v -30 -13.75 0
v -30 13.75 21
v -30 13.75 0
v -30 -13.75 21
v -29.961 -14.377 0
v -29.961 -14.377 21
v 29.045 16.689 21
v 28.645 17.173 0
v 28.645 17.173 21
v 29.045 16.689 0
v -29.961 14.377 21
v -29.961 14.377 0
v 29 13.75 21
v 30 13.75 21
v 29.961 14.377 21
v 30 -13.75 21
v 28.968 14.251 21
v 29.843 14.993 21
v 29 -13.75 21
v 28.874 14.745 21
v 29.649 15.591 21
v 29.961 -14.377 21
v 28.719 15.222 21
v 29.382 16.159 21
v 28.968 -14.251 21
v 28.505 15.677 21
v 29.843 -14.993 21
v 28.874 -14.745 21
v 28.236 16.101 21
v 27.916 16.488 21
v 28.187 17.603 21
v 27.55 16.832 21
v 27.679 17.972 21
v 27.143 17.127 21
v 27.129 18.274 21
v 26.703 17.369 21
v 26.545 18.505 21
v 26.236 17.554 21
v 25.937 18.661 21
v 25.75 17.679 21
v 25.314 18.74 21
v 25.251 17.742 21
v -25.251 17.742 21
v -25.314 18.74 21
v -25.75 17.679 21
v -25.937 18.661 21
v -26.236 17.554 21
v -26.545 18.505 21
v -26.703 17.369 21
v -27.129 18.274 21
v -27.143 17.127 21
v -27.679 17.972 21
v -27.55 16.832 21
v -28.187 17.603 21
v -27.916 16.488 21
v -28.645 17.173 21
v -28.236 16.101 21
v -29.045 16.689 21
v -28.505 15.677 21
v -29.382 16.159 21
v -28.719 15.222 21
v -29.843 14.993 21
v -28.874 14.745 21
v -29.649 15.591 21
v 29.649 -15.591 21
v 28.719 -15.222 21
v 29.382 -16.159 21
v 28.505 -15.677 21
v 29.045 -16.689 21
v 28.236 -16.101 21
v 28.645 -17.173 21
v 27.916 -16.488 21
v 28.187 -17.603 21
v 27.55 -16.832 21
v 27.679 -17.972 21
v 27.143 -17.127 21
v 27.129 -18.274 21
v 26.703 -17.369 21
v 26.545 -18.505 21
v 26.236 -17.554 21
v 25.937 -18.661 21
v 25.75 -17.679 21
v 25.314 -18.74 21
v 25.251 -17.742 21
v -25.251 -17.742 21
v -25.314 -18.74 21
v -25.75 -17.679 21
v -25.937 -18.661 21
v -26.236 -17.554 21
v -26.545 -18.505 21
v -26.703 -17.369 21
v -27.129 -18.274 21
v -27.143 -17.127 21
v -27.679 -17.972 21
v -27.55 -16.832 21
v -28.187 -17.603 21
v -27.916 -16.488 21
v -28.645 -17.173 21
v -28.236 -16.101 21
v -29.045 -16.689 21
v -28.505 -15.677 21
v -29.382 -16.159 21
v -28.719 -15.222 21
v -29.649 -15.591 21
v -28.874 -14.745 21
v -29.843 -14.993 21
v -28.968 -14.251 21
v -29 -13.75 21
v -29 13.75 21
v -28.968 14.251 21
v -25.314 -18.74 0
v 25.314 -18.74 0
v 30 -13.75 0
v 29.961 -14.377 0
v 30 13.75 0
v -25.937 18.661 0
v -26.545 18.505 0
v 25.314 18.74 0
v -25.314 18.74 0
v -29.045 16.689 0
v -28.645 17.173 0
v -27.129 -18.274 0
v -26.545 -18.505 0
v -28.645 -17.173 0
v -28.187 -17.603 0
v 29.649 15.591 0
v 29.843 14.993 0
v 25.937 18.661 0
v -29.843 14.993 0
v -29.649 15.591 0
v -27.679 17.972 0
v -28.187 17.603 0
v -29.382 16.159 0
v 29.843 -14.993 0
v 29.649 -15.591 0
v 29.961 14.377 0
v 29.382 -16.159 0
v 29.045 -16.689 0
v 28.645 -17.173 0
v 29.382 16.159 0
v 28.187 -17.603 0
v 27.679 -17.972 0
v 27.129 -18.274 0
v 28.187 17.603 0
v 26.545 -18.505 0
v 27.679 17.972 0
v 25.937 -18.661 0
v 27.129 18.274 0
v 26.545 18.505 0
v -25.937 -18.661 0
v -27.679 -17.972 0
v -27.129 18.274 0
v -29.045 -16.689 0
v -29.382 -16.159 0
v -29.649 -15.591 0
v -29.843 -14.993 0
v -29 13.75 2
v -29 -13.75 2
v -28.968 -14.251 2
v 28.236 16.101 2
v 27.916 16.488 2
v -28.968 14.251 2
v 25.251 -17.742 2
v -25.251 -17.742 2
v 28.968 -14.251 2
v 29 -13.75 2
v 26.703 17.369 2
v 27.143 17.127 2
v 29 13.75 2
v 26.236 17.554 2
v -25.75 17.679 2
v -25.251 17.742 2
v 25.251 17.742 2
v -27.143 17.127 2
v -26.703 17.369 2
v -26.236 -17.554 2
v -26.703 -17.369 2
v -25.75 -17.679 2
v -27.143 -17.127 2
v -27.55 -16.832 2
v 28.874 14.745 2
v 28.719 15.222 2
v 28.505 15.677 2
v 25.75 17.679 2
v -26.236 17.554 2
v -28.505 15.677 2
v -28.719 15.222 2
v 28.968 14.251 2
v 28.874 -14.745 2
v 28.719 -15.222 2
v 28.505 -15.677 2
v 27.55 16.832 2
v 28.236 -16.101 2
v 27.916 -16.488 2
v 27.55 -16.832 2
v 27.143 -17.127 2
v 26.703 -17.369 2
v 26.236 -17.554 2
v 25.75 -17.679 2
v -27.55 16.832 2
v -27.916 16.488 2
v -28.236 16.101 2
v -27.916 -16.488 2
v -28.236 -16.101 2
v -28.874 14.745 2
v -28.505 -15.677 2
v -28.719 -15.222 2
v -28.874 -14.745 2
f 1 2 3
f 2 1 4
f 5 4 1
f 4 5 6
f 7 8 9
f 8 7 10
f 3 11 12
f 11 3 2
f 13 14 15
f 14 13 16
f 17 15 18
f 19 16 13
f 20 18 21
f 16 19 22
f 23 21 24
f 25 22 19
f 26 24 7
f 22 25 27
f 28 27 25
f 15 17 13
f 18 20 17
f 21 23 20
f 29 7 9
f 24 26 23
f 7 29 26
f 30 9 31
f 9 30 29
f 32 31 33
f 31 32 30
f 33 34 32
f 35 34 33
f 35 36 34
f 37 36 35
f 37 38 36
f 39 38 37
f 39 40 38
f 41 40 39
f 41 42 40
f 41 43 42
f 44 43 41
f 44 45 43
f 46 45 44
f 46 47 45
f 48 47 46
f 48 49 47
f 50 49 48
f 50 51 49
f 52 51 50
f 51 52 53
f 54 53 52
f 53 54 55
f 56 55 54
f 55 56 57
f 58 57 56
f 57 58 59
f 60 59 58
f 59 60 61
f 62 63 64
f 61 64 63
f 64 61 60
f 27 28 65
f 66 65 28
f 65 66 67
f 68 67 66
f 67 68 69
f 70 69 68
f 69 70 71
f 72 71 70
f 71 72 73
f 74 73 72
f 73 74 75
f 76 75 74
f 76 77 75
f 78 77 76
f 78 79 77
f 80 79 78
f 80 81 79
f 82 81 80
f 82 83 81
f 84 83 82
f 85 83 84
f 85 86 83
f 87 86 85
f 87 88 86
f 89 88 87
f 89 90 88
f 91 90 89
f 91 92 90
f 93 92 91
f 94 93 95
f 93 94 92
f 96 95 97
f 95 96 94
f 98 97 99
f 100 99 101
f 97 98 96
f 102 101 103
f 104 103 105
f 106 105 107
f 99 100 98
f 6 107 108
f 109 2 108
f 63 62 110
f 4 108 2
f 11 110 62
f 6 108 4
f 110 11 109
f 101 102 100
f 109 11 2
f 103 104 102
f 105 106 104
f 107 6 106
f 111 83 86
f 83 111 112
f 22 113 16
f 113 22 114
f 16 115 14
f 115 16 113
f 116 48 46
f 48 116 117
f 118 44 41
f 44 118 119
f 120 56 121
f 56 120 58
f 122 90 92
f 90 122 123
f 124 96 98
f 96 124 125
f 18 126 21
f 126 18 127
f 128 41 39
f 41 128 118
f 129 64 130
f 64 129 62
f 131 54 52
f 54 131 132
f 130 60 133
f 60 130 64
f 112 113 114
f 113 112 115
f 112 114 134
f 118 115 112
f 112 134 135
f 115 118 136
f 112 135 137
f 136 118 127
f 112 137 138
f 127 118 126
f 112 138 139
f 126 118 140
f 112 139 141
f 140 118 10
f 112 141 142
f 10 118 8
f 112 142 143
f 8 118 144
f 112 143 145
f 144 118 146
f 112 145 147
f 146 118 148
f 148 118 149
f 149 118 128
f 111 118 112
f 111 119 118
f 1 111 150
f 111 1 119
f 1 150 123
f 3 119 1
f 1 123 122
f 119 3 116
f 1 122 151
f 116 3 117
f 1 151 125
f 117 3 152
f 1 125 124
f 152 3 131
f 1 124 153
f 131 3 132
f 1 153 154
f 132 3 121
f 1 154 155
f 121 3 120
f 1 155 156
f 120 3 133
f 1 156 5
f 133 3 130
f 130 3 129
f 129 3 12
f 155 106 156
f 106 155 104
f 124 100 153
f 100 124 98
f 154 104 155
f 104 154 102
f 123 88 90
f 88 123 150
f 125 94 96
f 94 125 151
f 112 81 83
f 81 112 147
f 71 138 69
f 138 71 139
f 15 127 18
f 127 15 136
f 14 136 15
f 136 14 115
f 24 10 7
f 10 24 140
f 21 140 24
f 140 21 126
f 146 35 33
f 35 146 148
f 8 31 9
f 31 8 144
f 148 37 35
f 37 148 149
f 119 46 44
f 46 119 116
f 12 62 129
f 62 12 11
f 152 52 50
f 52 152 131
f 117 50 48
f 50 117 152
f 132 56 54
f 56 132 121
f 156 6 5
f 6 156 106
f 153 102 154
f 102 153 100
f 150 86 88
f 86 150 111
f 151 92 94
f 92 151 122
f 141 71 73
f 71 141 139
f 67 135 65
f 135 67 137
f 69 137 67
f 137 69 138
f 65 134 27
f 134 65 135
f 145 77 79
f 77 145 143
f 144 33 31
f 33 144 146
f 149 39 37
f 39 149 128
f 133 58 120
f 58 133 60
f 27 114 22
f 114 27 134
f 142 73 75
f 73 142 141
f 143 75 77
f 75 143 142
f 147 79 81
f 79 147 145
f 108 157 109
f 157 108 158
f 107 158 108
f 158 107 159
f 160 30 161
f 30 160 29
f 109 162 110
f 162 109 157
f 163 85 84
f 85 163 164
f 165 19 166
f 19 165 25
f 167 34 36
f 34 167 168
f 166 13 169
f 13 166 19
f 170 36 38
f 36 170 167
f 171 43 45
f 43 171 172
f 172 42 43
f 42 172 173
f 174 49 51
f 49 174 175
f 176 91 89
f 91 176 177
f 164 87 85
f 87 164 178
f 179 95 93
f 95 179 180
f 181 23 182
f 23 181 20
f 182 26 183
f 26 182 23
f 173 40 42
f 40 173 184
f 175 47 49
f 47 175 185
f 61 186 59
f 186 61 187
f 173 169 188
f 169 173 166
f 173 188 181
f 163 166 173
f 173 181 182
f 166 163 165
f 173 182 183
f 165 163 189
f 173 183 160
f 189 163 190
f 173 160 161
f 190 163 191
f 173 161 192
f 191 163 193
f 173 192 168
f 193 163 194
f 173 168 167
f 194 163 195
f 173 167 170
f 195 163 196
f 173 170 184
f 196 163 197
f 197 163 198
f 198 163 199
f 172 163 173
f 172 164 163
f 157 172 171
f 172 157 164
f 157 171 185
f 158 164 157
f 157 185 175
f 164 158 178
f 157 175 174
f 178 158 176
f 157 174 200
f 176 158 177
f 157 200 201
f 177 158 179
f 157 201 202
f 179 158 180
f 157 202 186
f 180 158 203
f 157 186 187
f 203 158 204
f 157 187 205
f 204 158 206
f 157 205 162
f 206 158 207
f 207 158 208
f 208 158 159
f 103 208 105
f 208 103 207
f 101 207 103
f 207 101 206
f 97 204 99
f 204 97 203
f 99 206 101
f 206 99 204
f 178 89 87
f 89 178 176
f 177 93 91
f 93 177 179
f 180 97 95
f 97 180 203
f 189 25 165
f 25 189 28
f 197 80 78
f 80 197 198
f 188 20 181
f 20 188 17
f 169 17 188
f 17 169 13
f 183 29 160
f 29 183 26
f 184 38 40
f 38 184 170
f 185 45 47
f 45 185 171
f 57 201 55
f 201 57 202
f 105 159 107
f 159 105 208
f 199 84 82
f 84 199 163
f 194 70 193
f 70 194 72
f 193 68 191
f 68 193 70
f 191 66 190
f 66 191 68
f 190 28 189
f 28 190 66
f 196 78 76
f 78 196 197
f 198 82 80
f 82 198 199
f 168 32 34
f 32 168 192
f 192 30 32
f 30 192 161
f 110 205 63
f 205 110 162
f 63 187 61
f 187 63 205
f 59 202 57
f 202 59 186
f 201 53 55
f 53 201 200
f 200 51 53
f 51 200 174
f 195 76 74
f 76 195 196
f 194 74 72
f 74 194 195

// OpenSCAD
$fn = 50;


difference() {
	union() {
		hull() {
			translate(v = [-25.0000000000, 13.7500000000, 0]) {
				cylinder(h = 21, r = 5);
			}
			translate(v = [25.0000000000, 13.7500000000, 0]) {
				cylinder(h = 21, r = 5);
			}
			translate(v = [-25.0000000000, -13.7500000000, 0]) {
				cylinder(h = 21, r = 5);
			}
			translate(v = [25.0000000000, -13.7500000000, 0]) {
				cylinder(h = 21, r = 5);
			}
		}
	}
	union() {
		translate(v = [0, 0, 2]) {
			#hull() {
				translate(v = [-25.0000000000, 13.7500000000, 0]) {
					cylinder(h = 19, r = 4);
				}
				translate(v = [25.0000000000, 13.7500000000, 0]) {
					cylinder(h = 19, r = 4);
				}
				translate(v = [-25.0000000000, -13.7500000000, 0]) {
					cylinder(h = 19, r = 4);
				}
				translate(v = [25.0000000000, -13.7500000000, 0]) {
					cylinder(h = 19, r = 4);
				}
			}
		}
	}
}
